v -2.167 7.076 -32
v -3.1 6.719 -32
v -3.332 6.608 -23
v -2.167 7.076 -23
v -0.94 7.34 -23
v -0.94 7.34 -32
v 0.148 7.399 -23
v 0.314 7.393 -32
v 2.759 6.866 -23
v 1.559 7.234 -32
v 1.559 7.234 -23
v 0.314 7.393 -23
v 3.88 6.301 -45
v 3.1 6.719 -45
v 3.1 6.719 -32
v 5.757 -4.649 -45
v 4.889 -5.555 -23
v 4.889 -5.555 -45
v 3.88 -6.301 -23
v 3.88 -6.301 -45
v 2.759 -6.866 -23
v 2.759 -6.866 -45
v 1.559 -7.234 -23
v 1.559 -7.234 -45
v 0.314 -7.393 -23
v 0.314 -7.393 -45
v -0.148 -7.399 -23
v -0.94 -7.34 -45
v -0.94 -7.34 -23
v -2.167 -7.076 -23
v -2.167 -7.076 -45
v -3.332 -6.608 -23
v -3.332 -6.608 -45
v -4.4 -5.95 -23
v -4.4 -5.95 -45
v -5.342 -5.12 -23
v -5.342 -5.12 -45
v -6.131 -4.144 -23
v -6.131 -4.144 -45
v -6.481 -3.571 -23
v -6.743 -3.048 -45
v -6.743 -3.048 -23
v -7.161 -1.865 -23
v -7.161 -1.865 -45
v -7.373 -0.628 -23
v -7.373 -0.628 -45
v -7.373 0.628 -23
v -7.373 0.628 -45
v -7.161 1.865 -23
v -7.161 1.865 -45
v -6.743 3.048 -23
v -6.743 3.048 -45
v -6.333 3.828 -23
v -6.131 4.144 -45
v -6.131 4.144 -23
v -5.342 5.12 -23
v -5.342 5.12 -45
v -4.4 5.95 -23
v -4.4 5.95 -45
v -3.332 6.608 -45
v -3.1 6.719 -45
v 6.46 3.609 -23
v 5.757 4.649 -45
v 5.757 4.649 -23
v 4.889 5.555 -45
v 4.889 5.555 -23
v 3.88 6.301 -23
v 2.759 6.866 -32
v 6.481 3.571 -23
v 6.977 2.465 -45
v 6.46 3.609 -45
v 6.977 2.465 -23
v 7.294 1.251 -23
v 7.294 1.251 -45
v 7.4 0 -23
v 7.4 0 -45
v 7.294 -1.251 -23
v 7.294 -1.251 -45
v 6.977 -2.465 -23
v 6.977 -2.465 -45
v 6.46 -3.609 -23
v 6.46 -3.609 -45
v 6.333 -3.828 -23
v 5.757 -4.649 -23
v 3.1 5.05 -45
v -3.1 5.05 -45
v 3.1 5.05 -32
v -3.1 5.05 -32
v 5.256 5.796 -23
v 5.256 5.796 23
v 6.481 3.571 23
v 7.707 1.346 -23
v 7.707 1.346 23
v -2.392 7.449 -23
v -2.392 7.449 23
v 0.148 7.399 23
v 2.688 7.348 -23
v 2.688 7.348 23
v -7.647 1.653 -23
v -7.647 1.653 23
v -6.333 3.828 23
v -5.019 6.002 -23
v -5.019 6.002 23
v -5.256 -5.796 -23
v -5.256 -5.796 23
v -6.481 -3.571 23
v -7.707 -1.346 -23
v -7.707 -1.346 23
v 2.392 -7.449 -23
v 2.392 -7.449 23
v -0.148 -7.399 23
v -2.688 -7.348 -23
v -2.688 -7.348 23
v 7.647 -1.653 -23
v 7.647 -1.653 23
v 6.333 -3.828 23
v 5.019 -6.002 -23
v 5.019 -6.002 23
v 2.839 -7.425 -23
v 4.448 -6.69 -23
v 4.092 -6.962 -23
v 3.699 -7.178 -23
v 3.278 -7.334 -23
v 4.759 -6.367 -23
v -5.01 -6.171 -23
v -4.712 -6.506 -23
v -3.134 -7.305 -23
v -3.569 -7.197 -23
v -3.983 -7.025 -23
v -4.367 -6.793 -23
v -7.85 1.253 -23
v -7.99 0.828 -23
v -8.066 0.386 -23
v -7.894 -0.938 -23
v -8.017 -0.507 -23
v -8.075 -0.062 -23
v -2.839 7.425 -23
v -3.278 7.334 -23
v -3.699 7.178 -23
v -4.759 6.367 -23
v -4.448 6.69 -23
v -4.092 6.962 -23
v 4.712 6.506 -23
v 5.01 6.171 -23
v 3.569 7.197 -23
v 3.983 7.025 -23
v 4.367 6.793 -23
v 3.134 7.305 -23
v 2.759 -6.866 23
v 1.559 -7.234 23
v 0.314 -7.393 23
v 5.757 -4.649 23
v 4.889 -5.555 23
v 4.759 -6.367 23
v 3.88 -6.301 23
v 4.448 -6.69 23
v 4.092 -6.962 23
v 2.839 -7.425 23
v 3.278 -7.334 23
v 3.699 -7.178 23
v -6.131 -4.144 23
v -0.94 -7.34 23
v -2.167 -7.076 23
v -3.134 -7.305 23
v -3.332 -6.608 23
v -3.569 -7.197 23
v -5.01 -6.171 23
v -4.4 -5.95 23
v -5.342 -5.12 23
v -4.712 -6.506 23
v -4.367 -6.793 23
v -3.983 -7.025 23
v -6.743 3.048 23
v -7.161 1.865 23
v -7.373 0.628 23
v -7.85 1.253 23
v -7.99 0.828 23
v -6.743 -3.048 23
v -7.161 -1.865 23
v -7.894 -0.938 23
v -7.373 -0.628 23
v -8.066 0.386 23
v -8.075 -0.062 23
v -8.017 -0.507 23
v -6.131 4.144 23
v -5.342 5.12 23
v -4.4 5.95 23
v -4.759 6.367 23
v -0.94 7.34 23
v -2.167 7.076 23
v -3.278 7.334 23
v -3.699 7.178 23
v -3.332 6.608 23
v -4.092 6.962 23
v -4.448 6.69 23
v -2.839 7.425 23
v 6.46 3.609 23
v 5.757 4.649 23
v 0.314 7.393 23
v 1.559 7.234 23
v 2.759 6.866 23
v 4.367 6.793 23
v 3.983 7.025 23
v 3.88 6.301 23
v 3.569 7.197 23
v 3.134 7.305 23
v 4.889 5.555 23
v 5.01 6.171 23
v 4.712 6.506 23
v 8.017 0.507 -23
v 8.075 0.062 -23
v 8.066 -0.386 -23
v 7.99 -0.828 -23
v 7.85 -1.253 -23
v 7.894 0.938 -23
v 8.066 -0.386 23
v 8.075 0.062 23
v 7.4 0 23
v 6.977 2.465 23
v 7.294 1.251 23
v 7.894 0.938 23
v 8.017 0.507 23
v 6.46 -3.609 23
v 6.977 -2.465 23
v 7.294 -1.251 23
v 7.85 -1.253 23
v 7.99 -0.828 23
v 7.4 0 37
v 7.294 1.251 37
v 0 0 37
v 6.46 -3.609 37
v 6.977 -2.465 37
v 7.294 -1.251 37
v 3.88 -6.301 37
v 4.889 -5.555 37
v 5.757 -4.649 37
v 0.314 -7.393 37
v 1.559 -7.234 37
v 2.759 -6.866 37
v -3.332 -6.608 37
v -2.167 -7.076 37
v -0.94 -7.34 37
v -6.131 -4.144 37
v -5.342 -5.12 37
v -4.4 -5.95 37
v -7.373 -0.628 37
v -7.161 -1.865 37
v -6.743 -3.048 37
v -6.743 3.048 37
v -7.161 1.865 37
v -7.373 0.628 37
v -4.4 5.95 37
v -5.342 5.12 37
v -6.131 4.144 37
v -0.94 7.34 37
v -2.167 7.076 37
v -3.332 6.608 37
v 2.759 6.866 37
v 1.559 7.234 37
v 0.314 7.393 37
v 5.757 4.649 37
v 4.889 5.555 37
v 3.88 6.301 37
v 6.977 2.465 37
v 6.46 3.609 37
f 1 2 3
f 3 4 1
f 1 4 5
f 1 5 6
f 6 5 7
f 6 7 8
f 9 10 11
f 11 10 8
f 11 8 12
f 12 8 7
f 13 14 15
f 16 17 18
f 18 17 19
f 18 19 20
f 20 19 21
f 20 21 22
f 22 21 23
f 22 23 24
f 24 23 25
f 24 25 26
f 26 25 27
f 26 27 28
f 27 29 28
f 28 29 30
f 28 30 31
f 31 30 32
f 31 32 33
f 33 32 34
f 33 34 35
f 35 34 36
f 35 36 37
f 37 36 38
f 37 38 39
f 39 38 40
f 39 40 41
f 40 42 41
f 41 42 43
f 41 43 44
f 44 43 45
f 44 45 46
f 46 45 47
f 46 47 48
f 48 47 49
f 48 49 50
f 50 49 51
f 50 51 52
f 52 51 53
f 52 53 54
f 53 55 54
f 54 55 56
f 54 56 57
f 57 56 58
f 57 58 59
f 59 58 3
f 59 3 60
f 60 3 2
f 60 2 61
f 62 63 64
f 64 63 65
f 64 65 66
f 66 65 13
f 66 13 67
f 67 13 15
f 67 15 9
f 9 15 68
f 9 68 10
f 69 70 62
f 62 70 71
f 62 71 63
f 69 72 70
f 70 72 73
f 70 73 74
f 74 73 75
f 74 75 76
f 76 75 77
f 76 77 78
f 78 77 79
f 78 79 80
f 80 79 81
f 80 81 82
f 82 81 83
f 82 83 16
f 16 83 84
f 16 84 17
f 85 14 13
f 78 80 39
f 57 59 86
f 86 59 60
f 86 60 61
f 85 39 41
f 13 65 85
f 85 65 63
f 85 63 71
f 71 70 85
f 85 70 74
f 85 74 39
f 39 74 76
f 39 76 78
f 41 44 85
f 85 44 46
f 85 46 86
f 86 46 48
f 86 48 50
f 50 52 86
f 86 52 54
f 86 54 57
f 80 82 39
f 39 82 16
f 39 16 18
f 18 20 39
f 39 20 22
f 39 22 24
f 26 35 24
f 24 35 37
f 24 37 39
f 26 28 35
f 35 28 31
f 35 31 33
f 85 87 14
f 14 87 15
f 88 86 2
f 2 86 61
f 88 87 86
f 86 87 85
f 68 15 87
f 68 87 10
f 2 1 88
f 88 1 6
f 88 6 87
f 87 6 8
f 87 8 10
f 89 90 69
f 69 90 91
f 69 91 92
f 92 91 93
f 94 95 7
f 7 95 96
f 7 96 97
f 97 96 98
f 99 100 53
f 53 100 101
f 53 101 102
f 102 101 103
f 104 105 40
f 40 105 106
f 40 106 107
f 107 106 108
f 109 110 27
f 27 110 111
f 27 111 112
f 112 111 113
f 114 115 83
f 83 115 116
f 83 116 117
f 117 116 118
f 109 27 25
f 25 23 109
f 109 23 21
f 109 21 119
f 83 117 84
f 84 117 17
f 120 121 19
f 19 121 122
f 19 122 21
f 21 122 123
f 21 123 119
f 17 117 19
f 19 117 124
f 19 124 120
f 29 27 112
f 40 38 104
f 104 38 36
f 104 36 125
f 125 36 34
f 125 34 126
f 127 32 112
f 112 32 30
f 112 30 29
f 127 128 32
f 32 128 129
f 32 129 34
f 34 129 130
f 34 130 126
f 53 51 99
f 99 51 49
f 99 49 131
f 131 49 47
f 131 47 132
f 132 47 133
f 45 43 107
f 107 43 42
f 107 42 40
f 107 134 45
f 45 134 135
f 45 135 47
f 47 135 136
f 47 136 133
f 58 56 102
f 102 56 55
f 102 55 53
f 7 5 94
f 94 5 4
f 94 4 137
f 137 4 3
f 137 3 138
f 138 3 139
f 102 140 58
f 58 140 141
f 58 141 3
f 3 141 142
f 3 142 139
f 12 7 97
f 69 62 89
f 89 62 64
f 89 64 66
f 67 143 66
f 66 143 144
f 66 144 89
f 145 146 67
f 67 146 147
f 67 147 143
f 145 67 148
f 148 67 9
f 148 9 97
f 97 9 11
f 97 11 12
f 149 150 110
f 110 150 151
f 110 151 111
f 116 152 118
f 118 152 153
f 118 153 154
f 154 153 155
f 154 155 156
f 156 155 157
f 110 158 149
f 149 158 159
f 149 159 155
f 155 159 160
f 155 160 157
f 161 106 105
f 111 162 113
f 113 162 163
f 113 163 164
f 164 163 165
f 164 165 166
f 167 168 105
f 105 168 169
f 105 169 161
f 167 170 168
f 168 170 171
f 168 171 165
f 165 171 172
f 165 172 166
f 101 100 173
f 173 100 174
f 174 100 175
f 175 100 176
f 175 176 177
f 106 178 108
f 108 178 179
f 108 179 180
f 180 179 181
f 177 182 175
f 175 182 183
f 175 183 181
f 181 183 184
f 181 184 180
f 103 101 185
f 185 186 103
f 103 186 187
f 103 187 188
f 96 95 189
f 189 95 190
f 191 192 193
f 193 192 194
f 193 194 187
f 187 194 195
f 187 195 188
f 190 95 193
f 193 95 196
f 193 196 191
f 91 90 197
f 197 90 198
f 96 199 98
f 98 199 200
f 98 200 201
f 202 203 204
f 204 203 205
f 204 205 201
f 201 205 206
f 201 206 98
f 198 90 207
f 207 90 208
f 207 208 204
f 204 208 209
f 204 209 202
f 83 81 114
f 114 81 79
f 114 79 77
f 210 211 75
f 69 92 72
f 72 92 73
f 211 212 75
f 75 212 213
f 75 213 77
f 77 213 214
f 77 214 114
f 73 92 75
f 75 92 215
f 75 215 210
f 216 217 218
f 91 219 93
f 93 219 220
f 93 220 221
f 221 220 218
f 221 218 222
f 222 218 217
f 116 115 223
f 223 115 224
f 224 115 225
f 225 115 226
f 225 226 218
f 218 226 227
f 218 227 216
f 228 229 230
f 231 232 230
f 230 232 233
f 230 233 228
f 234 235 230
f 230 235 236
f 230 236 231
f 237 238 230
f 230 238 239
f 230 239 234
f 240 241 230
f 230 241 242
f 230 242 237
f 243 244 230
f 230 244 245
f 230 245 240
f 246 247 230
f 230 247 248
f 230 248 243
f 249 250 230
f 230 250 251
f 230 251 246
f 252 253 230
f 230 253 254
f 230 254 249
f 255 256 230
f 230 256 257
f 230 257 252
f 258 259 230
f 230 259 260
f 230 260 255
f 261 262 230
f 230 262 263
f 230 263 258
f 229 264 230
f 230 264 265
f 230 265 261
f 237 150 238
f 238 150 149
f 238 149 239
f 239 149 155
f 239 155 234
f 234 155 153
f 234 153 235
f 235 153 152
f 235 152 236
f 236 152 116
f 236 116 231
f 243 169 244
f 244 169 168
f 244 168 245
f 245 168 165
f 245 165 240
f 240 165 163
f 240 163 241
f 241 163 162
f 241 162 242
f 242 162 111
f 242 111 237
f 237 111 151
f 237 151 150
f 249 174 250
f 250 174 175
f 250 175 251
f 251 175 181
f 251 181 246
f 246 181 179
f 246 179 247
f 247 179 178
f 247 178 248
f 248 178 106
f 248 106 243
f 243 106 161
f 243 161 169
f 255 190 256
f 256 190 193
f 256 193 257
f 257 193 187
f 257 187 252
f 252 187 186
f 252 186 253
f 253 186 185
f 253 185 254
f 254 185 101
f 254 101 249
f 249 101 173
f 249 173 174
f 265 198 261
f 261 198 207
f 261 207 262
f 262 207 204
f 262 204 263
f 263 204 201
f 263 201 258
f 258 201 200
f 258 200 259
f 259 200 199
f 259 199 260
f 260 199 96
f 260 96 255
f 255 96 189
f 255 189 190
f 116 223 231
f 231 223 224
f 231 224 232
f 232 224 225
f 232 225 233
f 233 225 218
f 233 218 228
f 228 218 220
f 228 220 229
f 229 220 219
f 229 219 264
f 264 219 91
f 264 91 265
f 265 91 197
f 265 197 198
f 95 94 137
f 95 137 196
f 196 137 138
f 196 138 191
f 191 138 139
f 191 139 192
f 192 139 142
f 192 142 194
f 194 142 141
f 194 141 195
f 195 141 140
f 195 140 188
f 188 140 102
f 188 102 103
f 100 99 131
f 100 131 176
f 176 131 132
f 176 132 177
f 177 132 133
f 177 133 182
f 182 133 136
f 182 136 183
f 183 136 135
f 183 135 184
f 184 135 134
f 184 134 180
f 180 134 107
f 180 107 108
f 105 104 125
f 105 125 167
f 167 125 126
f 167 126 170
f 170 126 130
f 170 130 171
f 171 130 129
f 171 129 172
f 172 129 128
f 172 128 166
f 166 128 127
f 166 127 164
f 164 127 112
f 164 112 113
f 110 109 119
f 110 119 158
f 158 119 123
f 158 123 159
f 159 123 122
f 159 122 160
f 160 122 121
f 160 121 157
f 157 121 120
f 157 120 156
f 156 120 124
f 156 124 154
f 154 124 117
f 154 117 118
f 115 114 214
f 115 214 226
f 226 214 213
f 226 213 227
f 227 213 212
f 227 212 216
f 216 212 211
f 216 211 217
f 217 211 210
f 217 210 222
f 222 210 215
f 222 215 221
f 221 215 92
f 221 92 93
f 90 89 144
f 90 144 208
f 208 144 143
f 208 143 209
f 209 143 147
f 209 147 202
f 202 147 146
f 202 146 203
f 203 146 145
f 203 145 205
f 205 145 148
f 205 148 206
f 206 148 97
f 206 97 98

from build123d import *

# Parameters (mm, degrees)
BOSS_EXTRUDE1_DEPTH      = 37
BOSS_EXTRUDE1_DEPTH_BACK = 45
SKETCH1_R                = 7.4
SKETCH4_W                = 6.2
SKETCH4_H                = 4.7
CUT_EXTRUDE1_DEPTH       = 13
BOSS_EXTRUDE2_DEPTH      = 46
FILLET1_R                = 3


with BuildPart() as part:
    # Sketch1 → Boss-Extrude1 (new, two sides: drawn at the far end of the back side and taken through both)
    with BuildSketch(Plane.XY.offset(-BOSS_EXTRUDE1_DEPTH_BACK)):
        Circle(SKETCH1_R)
    extrude(amount=BOSS_EXTRUDE1_DEPTH + BOSS_EXTRUDE1_DEPTH_BACK)

    # Sketch4 → Cut-Extrude1 (cut)
    with BuildSketch(Plane(origin=(0, 0, -45), x_dir=(-1, 0, 0), z_dir=(0, 0, -1))):
        with Locations((0, 7.4)):
            Rectangle(SKETCH4_W, SKETCH4_H)
    extrude(amount=-CUT_EXTRUDE1_DEPTH, mode=Mode.SUBTRACT)

    # Sketch5 → Boss-Extrude2 (add)
    with BuildSketch(Plane.XY.offset(-23)):
        Polygon((4.419750831, 7.312943041), (-4.123319035, 7.484088019), (-8.543069866, 0.171144977), (-4.419750831, -7.312943041), (4.123319035, -7.484088019), (8.543069866, -0.171144977), align=None)
    extrude(amount=BOSS_EXTRUDE2_DEPTH)

    # Fillet1
    fillet1_edges = [part.edges().sort_by_distance(p)[0] for p in [
        (8.543069866, -0.171144977, 0),
        (4.419750831, 7.312943041, 0),
        (-4.123319035, 7.484088019, 0),
        (-8.543069866, 0.171144977, 0),
        (-4.419750831, -7.312943041, 0),
        (4.123319035, -7.484088019, 0),
    ]]
    fillet(fillet1_edges, radius=FILLET1_R)


solid = part.part
